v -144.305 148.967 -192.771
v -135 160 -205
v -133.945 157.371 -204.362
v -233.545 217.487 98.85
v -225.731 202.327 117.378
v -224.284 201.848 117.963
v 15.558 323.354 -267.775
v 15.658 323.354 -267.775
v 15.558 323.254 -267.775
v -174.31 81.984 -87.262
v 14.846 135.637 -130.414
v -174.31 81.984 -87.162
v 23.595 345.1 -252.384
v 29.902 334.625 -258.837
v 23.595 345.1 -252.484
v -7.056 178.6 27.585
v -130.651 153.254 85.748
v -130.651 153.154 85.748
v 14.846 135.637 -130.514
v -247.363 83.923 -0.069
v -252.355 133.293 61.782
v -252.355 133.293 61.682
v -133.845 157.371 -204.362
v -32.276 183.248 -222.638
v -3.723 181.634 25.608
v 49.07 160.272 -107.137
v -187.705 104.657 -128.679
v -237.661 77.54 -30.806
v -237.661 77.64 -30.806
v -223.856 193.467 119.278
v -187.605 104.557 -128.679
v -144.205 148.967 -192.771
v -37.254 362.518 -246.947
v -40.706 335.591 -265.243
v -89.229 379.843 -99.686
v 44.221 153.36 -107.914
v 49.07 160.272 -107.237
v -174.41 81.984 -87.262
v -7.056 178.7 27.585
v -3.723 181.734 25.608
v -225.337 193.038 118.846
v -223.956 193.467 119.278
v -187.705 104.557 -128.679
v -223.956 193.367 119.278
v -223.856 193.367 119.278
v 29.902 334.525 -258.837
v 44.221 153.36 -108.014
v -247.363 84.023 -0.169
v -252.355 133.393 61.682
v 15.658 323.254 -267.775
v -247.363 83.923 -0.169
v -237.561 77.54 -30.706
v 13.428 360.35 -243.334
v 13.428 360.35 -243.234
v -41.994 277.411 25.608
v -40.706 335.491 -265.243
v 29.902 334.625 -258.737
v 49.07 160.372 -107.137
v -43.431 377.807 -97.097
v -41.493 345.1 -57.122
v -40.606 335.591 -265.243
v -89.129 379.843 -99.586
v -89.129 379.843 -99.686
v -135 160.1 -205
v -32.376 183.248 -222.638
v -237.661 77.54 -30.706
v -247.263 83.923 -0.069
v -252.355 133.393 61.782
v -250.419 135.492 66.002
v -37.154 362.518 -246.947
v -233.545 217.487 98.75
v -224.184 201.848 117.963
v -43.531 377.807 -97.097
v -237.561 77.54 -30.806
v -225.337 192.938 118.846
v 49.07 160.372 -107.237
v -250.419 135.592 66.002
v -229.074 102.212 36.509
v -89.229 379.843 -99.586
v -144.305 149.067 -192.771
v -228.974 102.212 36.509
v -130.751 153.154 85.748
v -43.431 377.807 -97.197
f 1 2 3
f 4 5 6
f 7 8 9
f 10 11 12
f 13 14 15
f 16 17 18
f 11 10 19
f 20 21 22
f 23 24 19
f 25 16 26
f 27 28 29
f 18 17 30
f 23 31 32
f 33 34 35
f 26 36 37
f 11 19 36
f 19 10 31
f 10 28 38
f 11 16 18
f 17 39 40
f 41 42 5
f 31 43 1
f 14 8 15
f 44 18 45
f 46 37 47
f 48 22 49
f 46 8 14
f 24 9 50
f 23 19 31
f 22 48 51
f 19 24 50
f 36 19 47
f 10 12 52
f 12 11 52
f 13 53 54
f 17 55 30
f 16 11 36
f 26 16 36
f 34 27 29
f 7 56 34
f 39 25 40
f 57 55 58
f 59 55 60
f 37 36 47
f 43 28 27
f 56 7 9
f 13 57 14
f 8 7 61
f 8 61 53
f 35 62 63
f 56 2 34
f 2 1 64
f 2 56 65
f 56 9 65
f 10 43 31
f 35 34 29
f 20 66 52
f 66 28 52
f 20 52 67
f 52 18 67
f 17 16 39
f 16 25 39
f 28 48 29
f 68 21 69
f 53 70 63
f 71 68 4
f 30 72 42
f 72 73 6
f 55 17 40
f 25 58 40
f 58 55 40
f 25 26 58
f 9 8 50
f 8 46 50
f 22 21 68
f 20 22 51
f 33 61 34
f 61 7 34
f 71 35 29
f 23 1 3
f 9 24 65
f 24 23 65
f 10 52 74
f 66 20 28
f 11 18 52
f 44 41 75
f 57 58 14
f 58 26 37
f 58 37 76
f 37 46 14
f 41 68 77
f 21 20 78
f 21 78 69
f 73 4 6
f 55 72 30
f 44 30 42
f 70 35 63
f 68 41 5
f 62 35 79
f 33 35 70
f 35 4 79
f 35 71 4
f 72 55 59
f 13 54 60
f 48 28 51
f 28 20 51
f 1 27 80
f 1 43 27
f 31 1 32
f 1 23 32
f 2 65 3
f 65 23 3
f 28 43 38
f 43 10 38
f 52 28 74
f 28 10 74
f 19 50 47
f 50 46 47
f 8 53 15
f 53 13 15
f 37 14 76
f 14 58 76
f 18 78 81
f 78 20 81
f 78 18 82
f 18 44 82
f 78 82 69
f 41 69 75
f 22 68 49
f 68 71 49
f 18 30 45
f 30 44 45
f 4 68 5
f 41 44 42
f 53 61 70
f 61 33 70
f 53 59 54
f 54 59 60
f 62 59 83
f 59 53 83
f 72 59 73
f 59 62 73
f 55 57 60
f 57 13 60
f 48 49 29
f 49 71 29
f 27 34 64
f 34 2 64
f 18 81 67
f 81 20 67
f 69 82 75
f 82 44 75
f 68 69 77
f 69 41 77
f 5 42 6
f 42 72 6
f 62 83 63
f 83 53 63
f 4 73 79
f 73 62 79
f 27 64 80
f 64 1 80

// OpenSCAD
hull(){ translate([14.7461457495,135.637112253,-130.51359049])cube(0.1,0.1,0.1);
translate([44.1209004463,153.360178537,-108.013778382])cube(0.1,0.1,0.1);
translate([48.9700544465,160.272232305,-107.236842105])cube(0.1,0.1,0.1);
translate([-174.409836066,81.9836065574,-87.262295082])cube(0.1,0.1,0.1);
translate([-7.15618860511,178.600196464,27.4852652259])cube(0.1,0.1,0.1);
translate([-3.82291057861,181.633547633,25.5084745763])cube(0.1,0.1,0.1);
translate([29.8022722307,334.524797903,-258.836574175])cube(0.1,0.1,0.1);
translate([-130.751001335,153.154205607,85.6475300401])cube(0.1,0.1,0.1);
translate([13.3277988615,360.250237192,-243.333728653])cube(0.1,0.1,0.1);
translate([23.4946236559,345.0,-252.483870968])cube(0.1,0.1,0.1);
translate([-223.955568379,193.366993653,119.177726486])cube(0.1,0.1,0.1);
translate([-225.336985162,192.937872694,118.745666343])cube(0.1,0.1,0.1);
translate([-250.418994413,135.491980537,65.9015137863])cube(0.1,0.1,0.1);
translate([-229.073953306,102.212077736,36.4086344072])cube(0.1,0.1,0.1);
translate([-37.2540983607,362.418032787,-246.946721311])cube(0.1,0.1,0.1);
translate([-252.355484752,133.293126991,61.6818388712])cube(0.1,0.1,0.1);
translate([-237.661290323,77.5403225806,-30.8064516129])cube(0.1,0.1,0.1);
translate([-247.363002851,83.9230281913,-0.16946468166])cube(0.1,0.1,0.1);
translate([-187.705361535,104.557304476,-128.679291687])cube(0.1,0.1,0.1);
translate([-144.304703476,148.967280164,-192.770961145])cube(0.1,0.1,0.1);
translate([-225.731346959,202.22728392,117.277764098])cube(0.1,0.1,0.1);
translate([-233.545054945,217.386813187,98.7494505495])cube(0.1,0.1,0.1);
translate([-224.284253579,201.748466258,117.862985685])cube(0.1,0.1,0.1);
translate([-89.2285714286,379.742857143,-99.6857142857])cube(0.1,0.1,0.1);
translate([-43.5307743216,377.706816678,-97.1972203839])cube(0.1,0.1,0.1);
translate([-41.5925925926,345.0,-57.2222222222])cube(0.1,0.1,0.1);
translate([-42.093990755,277.311248074,25.5084745763])cube(0.1,0.1,0.1);
translate([-32.3757926277,183.2482057,-222.637795276])cube(0.1,0.1,0.1);
translate([-133.945458427,157.37058384,-204.361724837])cube(0.1,0.1,0.1);
translate([15.5576208178,323.253717472,-267.775092937])cube(0.1,0.1,0.1);
translate([-135.0,160.0,-205.0])cube(0.1,0.1,0.1);
translate([-40.7062675398,335.49111319,-265.243217961])cube(0.1,0.1,0.1); }
